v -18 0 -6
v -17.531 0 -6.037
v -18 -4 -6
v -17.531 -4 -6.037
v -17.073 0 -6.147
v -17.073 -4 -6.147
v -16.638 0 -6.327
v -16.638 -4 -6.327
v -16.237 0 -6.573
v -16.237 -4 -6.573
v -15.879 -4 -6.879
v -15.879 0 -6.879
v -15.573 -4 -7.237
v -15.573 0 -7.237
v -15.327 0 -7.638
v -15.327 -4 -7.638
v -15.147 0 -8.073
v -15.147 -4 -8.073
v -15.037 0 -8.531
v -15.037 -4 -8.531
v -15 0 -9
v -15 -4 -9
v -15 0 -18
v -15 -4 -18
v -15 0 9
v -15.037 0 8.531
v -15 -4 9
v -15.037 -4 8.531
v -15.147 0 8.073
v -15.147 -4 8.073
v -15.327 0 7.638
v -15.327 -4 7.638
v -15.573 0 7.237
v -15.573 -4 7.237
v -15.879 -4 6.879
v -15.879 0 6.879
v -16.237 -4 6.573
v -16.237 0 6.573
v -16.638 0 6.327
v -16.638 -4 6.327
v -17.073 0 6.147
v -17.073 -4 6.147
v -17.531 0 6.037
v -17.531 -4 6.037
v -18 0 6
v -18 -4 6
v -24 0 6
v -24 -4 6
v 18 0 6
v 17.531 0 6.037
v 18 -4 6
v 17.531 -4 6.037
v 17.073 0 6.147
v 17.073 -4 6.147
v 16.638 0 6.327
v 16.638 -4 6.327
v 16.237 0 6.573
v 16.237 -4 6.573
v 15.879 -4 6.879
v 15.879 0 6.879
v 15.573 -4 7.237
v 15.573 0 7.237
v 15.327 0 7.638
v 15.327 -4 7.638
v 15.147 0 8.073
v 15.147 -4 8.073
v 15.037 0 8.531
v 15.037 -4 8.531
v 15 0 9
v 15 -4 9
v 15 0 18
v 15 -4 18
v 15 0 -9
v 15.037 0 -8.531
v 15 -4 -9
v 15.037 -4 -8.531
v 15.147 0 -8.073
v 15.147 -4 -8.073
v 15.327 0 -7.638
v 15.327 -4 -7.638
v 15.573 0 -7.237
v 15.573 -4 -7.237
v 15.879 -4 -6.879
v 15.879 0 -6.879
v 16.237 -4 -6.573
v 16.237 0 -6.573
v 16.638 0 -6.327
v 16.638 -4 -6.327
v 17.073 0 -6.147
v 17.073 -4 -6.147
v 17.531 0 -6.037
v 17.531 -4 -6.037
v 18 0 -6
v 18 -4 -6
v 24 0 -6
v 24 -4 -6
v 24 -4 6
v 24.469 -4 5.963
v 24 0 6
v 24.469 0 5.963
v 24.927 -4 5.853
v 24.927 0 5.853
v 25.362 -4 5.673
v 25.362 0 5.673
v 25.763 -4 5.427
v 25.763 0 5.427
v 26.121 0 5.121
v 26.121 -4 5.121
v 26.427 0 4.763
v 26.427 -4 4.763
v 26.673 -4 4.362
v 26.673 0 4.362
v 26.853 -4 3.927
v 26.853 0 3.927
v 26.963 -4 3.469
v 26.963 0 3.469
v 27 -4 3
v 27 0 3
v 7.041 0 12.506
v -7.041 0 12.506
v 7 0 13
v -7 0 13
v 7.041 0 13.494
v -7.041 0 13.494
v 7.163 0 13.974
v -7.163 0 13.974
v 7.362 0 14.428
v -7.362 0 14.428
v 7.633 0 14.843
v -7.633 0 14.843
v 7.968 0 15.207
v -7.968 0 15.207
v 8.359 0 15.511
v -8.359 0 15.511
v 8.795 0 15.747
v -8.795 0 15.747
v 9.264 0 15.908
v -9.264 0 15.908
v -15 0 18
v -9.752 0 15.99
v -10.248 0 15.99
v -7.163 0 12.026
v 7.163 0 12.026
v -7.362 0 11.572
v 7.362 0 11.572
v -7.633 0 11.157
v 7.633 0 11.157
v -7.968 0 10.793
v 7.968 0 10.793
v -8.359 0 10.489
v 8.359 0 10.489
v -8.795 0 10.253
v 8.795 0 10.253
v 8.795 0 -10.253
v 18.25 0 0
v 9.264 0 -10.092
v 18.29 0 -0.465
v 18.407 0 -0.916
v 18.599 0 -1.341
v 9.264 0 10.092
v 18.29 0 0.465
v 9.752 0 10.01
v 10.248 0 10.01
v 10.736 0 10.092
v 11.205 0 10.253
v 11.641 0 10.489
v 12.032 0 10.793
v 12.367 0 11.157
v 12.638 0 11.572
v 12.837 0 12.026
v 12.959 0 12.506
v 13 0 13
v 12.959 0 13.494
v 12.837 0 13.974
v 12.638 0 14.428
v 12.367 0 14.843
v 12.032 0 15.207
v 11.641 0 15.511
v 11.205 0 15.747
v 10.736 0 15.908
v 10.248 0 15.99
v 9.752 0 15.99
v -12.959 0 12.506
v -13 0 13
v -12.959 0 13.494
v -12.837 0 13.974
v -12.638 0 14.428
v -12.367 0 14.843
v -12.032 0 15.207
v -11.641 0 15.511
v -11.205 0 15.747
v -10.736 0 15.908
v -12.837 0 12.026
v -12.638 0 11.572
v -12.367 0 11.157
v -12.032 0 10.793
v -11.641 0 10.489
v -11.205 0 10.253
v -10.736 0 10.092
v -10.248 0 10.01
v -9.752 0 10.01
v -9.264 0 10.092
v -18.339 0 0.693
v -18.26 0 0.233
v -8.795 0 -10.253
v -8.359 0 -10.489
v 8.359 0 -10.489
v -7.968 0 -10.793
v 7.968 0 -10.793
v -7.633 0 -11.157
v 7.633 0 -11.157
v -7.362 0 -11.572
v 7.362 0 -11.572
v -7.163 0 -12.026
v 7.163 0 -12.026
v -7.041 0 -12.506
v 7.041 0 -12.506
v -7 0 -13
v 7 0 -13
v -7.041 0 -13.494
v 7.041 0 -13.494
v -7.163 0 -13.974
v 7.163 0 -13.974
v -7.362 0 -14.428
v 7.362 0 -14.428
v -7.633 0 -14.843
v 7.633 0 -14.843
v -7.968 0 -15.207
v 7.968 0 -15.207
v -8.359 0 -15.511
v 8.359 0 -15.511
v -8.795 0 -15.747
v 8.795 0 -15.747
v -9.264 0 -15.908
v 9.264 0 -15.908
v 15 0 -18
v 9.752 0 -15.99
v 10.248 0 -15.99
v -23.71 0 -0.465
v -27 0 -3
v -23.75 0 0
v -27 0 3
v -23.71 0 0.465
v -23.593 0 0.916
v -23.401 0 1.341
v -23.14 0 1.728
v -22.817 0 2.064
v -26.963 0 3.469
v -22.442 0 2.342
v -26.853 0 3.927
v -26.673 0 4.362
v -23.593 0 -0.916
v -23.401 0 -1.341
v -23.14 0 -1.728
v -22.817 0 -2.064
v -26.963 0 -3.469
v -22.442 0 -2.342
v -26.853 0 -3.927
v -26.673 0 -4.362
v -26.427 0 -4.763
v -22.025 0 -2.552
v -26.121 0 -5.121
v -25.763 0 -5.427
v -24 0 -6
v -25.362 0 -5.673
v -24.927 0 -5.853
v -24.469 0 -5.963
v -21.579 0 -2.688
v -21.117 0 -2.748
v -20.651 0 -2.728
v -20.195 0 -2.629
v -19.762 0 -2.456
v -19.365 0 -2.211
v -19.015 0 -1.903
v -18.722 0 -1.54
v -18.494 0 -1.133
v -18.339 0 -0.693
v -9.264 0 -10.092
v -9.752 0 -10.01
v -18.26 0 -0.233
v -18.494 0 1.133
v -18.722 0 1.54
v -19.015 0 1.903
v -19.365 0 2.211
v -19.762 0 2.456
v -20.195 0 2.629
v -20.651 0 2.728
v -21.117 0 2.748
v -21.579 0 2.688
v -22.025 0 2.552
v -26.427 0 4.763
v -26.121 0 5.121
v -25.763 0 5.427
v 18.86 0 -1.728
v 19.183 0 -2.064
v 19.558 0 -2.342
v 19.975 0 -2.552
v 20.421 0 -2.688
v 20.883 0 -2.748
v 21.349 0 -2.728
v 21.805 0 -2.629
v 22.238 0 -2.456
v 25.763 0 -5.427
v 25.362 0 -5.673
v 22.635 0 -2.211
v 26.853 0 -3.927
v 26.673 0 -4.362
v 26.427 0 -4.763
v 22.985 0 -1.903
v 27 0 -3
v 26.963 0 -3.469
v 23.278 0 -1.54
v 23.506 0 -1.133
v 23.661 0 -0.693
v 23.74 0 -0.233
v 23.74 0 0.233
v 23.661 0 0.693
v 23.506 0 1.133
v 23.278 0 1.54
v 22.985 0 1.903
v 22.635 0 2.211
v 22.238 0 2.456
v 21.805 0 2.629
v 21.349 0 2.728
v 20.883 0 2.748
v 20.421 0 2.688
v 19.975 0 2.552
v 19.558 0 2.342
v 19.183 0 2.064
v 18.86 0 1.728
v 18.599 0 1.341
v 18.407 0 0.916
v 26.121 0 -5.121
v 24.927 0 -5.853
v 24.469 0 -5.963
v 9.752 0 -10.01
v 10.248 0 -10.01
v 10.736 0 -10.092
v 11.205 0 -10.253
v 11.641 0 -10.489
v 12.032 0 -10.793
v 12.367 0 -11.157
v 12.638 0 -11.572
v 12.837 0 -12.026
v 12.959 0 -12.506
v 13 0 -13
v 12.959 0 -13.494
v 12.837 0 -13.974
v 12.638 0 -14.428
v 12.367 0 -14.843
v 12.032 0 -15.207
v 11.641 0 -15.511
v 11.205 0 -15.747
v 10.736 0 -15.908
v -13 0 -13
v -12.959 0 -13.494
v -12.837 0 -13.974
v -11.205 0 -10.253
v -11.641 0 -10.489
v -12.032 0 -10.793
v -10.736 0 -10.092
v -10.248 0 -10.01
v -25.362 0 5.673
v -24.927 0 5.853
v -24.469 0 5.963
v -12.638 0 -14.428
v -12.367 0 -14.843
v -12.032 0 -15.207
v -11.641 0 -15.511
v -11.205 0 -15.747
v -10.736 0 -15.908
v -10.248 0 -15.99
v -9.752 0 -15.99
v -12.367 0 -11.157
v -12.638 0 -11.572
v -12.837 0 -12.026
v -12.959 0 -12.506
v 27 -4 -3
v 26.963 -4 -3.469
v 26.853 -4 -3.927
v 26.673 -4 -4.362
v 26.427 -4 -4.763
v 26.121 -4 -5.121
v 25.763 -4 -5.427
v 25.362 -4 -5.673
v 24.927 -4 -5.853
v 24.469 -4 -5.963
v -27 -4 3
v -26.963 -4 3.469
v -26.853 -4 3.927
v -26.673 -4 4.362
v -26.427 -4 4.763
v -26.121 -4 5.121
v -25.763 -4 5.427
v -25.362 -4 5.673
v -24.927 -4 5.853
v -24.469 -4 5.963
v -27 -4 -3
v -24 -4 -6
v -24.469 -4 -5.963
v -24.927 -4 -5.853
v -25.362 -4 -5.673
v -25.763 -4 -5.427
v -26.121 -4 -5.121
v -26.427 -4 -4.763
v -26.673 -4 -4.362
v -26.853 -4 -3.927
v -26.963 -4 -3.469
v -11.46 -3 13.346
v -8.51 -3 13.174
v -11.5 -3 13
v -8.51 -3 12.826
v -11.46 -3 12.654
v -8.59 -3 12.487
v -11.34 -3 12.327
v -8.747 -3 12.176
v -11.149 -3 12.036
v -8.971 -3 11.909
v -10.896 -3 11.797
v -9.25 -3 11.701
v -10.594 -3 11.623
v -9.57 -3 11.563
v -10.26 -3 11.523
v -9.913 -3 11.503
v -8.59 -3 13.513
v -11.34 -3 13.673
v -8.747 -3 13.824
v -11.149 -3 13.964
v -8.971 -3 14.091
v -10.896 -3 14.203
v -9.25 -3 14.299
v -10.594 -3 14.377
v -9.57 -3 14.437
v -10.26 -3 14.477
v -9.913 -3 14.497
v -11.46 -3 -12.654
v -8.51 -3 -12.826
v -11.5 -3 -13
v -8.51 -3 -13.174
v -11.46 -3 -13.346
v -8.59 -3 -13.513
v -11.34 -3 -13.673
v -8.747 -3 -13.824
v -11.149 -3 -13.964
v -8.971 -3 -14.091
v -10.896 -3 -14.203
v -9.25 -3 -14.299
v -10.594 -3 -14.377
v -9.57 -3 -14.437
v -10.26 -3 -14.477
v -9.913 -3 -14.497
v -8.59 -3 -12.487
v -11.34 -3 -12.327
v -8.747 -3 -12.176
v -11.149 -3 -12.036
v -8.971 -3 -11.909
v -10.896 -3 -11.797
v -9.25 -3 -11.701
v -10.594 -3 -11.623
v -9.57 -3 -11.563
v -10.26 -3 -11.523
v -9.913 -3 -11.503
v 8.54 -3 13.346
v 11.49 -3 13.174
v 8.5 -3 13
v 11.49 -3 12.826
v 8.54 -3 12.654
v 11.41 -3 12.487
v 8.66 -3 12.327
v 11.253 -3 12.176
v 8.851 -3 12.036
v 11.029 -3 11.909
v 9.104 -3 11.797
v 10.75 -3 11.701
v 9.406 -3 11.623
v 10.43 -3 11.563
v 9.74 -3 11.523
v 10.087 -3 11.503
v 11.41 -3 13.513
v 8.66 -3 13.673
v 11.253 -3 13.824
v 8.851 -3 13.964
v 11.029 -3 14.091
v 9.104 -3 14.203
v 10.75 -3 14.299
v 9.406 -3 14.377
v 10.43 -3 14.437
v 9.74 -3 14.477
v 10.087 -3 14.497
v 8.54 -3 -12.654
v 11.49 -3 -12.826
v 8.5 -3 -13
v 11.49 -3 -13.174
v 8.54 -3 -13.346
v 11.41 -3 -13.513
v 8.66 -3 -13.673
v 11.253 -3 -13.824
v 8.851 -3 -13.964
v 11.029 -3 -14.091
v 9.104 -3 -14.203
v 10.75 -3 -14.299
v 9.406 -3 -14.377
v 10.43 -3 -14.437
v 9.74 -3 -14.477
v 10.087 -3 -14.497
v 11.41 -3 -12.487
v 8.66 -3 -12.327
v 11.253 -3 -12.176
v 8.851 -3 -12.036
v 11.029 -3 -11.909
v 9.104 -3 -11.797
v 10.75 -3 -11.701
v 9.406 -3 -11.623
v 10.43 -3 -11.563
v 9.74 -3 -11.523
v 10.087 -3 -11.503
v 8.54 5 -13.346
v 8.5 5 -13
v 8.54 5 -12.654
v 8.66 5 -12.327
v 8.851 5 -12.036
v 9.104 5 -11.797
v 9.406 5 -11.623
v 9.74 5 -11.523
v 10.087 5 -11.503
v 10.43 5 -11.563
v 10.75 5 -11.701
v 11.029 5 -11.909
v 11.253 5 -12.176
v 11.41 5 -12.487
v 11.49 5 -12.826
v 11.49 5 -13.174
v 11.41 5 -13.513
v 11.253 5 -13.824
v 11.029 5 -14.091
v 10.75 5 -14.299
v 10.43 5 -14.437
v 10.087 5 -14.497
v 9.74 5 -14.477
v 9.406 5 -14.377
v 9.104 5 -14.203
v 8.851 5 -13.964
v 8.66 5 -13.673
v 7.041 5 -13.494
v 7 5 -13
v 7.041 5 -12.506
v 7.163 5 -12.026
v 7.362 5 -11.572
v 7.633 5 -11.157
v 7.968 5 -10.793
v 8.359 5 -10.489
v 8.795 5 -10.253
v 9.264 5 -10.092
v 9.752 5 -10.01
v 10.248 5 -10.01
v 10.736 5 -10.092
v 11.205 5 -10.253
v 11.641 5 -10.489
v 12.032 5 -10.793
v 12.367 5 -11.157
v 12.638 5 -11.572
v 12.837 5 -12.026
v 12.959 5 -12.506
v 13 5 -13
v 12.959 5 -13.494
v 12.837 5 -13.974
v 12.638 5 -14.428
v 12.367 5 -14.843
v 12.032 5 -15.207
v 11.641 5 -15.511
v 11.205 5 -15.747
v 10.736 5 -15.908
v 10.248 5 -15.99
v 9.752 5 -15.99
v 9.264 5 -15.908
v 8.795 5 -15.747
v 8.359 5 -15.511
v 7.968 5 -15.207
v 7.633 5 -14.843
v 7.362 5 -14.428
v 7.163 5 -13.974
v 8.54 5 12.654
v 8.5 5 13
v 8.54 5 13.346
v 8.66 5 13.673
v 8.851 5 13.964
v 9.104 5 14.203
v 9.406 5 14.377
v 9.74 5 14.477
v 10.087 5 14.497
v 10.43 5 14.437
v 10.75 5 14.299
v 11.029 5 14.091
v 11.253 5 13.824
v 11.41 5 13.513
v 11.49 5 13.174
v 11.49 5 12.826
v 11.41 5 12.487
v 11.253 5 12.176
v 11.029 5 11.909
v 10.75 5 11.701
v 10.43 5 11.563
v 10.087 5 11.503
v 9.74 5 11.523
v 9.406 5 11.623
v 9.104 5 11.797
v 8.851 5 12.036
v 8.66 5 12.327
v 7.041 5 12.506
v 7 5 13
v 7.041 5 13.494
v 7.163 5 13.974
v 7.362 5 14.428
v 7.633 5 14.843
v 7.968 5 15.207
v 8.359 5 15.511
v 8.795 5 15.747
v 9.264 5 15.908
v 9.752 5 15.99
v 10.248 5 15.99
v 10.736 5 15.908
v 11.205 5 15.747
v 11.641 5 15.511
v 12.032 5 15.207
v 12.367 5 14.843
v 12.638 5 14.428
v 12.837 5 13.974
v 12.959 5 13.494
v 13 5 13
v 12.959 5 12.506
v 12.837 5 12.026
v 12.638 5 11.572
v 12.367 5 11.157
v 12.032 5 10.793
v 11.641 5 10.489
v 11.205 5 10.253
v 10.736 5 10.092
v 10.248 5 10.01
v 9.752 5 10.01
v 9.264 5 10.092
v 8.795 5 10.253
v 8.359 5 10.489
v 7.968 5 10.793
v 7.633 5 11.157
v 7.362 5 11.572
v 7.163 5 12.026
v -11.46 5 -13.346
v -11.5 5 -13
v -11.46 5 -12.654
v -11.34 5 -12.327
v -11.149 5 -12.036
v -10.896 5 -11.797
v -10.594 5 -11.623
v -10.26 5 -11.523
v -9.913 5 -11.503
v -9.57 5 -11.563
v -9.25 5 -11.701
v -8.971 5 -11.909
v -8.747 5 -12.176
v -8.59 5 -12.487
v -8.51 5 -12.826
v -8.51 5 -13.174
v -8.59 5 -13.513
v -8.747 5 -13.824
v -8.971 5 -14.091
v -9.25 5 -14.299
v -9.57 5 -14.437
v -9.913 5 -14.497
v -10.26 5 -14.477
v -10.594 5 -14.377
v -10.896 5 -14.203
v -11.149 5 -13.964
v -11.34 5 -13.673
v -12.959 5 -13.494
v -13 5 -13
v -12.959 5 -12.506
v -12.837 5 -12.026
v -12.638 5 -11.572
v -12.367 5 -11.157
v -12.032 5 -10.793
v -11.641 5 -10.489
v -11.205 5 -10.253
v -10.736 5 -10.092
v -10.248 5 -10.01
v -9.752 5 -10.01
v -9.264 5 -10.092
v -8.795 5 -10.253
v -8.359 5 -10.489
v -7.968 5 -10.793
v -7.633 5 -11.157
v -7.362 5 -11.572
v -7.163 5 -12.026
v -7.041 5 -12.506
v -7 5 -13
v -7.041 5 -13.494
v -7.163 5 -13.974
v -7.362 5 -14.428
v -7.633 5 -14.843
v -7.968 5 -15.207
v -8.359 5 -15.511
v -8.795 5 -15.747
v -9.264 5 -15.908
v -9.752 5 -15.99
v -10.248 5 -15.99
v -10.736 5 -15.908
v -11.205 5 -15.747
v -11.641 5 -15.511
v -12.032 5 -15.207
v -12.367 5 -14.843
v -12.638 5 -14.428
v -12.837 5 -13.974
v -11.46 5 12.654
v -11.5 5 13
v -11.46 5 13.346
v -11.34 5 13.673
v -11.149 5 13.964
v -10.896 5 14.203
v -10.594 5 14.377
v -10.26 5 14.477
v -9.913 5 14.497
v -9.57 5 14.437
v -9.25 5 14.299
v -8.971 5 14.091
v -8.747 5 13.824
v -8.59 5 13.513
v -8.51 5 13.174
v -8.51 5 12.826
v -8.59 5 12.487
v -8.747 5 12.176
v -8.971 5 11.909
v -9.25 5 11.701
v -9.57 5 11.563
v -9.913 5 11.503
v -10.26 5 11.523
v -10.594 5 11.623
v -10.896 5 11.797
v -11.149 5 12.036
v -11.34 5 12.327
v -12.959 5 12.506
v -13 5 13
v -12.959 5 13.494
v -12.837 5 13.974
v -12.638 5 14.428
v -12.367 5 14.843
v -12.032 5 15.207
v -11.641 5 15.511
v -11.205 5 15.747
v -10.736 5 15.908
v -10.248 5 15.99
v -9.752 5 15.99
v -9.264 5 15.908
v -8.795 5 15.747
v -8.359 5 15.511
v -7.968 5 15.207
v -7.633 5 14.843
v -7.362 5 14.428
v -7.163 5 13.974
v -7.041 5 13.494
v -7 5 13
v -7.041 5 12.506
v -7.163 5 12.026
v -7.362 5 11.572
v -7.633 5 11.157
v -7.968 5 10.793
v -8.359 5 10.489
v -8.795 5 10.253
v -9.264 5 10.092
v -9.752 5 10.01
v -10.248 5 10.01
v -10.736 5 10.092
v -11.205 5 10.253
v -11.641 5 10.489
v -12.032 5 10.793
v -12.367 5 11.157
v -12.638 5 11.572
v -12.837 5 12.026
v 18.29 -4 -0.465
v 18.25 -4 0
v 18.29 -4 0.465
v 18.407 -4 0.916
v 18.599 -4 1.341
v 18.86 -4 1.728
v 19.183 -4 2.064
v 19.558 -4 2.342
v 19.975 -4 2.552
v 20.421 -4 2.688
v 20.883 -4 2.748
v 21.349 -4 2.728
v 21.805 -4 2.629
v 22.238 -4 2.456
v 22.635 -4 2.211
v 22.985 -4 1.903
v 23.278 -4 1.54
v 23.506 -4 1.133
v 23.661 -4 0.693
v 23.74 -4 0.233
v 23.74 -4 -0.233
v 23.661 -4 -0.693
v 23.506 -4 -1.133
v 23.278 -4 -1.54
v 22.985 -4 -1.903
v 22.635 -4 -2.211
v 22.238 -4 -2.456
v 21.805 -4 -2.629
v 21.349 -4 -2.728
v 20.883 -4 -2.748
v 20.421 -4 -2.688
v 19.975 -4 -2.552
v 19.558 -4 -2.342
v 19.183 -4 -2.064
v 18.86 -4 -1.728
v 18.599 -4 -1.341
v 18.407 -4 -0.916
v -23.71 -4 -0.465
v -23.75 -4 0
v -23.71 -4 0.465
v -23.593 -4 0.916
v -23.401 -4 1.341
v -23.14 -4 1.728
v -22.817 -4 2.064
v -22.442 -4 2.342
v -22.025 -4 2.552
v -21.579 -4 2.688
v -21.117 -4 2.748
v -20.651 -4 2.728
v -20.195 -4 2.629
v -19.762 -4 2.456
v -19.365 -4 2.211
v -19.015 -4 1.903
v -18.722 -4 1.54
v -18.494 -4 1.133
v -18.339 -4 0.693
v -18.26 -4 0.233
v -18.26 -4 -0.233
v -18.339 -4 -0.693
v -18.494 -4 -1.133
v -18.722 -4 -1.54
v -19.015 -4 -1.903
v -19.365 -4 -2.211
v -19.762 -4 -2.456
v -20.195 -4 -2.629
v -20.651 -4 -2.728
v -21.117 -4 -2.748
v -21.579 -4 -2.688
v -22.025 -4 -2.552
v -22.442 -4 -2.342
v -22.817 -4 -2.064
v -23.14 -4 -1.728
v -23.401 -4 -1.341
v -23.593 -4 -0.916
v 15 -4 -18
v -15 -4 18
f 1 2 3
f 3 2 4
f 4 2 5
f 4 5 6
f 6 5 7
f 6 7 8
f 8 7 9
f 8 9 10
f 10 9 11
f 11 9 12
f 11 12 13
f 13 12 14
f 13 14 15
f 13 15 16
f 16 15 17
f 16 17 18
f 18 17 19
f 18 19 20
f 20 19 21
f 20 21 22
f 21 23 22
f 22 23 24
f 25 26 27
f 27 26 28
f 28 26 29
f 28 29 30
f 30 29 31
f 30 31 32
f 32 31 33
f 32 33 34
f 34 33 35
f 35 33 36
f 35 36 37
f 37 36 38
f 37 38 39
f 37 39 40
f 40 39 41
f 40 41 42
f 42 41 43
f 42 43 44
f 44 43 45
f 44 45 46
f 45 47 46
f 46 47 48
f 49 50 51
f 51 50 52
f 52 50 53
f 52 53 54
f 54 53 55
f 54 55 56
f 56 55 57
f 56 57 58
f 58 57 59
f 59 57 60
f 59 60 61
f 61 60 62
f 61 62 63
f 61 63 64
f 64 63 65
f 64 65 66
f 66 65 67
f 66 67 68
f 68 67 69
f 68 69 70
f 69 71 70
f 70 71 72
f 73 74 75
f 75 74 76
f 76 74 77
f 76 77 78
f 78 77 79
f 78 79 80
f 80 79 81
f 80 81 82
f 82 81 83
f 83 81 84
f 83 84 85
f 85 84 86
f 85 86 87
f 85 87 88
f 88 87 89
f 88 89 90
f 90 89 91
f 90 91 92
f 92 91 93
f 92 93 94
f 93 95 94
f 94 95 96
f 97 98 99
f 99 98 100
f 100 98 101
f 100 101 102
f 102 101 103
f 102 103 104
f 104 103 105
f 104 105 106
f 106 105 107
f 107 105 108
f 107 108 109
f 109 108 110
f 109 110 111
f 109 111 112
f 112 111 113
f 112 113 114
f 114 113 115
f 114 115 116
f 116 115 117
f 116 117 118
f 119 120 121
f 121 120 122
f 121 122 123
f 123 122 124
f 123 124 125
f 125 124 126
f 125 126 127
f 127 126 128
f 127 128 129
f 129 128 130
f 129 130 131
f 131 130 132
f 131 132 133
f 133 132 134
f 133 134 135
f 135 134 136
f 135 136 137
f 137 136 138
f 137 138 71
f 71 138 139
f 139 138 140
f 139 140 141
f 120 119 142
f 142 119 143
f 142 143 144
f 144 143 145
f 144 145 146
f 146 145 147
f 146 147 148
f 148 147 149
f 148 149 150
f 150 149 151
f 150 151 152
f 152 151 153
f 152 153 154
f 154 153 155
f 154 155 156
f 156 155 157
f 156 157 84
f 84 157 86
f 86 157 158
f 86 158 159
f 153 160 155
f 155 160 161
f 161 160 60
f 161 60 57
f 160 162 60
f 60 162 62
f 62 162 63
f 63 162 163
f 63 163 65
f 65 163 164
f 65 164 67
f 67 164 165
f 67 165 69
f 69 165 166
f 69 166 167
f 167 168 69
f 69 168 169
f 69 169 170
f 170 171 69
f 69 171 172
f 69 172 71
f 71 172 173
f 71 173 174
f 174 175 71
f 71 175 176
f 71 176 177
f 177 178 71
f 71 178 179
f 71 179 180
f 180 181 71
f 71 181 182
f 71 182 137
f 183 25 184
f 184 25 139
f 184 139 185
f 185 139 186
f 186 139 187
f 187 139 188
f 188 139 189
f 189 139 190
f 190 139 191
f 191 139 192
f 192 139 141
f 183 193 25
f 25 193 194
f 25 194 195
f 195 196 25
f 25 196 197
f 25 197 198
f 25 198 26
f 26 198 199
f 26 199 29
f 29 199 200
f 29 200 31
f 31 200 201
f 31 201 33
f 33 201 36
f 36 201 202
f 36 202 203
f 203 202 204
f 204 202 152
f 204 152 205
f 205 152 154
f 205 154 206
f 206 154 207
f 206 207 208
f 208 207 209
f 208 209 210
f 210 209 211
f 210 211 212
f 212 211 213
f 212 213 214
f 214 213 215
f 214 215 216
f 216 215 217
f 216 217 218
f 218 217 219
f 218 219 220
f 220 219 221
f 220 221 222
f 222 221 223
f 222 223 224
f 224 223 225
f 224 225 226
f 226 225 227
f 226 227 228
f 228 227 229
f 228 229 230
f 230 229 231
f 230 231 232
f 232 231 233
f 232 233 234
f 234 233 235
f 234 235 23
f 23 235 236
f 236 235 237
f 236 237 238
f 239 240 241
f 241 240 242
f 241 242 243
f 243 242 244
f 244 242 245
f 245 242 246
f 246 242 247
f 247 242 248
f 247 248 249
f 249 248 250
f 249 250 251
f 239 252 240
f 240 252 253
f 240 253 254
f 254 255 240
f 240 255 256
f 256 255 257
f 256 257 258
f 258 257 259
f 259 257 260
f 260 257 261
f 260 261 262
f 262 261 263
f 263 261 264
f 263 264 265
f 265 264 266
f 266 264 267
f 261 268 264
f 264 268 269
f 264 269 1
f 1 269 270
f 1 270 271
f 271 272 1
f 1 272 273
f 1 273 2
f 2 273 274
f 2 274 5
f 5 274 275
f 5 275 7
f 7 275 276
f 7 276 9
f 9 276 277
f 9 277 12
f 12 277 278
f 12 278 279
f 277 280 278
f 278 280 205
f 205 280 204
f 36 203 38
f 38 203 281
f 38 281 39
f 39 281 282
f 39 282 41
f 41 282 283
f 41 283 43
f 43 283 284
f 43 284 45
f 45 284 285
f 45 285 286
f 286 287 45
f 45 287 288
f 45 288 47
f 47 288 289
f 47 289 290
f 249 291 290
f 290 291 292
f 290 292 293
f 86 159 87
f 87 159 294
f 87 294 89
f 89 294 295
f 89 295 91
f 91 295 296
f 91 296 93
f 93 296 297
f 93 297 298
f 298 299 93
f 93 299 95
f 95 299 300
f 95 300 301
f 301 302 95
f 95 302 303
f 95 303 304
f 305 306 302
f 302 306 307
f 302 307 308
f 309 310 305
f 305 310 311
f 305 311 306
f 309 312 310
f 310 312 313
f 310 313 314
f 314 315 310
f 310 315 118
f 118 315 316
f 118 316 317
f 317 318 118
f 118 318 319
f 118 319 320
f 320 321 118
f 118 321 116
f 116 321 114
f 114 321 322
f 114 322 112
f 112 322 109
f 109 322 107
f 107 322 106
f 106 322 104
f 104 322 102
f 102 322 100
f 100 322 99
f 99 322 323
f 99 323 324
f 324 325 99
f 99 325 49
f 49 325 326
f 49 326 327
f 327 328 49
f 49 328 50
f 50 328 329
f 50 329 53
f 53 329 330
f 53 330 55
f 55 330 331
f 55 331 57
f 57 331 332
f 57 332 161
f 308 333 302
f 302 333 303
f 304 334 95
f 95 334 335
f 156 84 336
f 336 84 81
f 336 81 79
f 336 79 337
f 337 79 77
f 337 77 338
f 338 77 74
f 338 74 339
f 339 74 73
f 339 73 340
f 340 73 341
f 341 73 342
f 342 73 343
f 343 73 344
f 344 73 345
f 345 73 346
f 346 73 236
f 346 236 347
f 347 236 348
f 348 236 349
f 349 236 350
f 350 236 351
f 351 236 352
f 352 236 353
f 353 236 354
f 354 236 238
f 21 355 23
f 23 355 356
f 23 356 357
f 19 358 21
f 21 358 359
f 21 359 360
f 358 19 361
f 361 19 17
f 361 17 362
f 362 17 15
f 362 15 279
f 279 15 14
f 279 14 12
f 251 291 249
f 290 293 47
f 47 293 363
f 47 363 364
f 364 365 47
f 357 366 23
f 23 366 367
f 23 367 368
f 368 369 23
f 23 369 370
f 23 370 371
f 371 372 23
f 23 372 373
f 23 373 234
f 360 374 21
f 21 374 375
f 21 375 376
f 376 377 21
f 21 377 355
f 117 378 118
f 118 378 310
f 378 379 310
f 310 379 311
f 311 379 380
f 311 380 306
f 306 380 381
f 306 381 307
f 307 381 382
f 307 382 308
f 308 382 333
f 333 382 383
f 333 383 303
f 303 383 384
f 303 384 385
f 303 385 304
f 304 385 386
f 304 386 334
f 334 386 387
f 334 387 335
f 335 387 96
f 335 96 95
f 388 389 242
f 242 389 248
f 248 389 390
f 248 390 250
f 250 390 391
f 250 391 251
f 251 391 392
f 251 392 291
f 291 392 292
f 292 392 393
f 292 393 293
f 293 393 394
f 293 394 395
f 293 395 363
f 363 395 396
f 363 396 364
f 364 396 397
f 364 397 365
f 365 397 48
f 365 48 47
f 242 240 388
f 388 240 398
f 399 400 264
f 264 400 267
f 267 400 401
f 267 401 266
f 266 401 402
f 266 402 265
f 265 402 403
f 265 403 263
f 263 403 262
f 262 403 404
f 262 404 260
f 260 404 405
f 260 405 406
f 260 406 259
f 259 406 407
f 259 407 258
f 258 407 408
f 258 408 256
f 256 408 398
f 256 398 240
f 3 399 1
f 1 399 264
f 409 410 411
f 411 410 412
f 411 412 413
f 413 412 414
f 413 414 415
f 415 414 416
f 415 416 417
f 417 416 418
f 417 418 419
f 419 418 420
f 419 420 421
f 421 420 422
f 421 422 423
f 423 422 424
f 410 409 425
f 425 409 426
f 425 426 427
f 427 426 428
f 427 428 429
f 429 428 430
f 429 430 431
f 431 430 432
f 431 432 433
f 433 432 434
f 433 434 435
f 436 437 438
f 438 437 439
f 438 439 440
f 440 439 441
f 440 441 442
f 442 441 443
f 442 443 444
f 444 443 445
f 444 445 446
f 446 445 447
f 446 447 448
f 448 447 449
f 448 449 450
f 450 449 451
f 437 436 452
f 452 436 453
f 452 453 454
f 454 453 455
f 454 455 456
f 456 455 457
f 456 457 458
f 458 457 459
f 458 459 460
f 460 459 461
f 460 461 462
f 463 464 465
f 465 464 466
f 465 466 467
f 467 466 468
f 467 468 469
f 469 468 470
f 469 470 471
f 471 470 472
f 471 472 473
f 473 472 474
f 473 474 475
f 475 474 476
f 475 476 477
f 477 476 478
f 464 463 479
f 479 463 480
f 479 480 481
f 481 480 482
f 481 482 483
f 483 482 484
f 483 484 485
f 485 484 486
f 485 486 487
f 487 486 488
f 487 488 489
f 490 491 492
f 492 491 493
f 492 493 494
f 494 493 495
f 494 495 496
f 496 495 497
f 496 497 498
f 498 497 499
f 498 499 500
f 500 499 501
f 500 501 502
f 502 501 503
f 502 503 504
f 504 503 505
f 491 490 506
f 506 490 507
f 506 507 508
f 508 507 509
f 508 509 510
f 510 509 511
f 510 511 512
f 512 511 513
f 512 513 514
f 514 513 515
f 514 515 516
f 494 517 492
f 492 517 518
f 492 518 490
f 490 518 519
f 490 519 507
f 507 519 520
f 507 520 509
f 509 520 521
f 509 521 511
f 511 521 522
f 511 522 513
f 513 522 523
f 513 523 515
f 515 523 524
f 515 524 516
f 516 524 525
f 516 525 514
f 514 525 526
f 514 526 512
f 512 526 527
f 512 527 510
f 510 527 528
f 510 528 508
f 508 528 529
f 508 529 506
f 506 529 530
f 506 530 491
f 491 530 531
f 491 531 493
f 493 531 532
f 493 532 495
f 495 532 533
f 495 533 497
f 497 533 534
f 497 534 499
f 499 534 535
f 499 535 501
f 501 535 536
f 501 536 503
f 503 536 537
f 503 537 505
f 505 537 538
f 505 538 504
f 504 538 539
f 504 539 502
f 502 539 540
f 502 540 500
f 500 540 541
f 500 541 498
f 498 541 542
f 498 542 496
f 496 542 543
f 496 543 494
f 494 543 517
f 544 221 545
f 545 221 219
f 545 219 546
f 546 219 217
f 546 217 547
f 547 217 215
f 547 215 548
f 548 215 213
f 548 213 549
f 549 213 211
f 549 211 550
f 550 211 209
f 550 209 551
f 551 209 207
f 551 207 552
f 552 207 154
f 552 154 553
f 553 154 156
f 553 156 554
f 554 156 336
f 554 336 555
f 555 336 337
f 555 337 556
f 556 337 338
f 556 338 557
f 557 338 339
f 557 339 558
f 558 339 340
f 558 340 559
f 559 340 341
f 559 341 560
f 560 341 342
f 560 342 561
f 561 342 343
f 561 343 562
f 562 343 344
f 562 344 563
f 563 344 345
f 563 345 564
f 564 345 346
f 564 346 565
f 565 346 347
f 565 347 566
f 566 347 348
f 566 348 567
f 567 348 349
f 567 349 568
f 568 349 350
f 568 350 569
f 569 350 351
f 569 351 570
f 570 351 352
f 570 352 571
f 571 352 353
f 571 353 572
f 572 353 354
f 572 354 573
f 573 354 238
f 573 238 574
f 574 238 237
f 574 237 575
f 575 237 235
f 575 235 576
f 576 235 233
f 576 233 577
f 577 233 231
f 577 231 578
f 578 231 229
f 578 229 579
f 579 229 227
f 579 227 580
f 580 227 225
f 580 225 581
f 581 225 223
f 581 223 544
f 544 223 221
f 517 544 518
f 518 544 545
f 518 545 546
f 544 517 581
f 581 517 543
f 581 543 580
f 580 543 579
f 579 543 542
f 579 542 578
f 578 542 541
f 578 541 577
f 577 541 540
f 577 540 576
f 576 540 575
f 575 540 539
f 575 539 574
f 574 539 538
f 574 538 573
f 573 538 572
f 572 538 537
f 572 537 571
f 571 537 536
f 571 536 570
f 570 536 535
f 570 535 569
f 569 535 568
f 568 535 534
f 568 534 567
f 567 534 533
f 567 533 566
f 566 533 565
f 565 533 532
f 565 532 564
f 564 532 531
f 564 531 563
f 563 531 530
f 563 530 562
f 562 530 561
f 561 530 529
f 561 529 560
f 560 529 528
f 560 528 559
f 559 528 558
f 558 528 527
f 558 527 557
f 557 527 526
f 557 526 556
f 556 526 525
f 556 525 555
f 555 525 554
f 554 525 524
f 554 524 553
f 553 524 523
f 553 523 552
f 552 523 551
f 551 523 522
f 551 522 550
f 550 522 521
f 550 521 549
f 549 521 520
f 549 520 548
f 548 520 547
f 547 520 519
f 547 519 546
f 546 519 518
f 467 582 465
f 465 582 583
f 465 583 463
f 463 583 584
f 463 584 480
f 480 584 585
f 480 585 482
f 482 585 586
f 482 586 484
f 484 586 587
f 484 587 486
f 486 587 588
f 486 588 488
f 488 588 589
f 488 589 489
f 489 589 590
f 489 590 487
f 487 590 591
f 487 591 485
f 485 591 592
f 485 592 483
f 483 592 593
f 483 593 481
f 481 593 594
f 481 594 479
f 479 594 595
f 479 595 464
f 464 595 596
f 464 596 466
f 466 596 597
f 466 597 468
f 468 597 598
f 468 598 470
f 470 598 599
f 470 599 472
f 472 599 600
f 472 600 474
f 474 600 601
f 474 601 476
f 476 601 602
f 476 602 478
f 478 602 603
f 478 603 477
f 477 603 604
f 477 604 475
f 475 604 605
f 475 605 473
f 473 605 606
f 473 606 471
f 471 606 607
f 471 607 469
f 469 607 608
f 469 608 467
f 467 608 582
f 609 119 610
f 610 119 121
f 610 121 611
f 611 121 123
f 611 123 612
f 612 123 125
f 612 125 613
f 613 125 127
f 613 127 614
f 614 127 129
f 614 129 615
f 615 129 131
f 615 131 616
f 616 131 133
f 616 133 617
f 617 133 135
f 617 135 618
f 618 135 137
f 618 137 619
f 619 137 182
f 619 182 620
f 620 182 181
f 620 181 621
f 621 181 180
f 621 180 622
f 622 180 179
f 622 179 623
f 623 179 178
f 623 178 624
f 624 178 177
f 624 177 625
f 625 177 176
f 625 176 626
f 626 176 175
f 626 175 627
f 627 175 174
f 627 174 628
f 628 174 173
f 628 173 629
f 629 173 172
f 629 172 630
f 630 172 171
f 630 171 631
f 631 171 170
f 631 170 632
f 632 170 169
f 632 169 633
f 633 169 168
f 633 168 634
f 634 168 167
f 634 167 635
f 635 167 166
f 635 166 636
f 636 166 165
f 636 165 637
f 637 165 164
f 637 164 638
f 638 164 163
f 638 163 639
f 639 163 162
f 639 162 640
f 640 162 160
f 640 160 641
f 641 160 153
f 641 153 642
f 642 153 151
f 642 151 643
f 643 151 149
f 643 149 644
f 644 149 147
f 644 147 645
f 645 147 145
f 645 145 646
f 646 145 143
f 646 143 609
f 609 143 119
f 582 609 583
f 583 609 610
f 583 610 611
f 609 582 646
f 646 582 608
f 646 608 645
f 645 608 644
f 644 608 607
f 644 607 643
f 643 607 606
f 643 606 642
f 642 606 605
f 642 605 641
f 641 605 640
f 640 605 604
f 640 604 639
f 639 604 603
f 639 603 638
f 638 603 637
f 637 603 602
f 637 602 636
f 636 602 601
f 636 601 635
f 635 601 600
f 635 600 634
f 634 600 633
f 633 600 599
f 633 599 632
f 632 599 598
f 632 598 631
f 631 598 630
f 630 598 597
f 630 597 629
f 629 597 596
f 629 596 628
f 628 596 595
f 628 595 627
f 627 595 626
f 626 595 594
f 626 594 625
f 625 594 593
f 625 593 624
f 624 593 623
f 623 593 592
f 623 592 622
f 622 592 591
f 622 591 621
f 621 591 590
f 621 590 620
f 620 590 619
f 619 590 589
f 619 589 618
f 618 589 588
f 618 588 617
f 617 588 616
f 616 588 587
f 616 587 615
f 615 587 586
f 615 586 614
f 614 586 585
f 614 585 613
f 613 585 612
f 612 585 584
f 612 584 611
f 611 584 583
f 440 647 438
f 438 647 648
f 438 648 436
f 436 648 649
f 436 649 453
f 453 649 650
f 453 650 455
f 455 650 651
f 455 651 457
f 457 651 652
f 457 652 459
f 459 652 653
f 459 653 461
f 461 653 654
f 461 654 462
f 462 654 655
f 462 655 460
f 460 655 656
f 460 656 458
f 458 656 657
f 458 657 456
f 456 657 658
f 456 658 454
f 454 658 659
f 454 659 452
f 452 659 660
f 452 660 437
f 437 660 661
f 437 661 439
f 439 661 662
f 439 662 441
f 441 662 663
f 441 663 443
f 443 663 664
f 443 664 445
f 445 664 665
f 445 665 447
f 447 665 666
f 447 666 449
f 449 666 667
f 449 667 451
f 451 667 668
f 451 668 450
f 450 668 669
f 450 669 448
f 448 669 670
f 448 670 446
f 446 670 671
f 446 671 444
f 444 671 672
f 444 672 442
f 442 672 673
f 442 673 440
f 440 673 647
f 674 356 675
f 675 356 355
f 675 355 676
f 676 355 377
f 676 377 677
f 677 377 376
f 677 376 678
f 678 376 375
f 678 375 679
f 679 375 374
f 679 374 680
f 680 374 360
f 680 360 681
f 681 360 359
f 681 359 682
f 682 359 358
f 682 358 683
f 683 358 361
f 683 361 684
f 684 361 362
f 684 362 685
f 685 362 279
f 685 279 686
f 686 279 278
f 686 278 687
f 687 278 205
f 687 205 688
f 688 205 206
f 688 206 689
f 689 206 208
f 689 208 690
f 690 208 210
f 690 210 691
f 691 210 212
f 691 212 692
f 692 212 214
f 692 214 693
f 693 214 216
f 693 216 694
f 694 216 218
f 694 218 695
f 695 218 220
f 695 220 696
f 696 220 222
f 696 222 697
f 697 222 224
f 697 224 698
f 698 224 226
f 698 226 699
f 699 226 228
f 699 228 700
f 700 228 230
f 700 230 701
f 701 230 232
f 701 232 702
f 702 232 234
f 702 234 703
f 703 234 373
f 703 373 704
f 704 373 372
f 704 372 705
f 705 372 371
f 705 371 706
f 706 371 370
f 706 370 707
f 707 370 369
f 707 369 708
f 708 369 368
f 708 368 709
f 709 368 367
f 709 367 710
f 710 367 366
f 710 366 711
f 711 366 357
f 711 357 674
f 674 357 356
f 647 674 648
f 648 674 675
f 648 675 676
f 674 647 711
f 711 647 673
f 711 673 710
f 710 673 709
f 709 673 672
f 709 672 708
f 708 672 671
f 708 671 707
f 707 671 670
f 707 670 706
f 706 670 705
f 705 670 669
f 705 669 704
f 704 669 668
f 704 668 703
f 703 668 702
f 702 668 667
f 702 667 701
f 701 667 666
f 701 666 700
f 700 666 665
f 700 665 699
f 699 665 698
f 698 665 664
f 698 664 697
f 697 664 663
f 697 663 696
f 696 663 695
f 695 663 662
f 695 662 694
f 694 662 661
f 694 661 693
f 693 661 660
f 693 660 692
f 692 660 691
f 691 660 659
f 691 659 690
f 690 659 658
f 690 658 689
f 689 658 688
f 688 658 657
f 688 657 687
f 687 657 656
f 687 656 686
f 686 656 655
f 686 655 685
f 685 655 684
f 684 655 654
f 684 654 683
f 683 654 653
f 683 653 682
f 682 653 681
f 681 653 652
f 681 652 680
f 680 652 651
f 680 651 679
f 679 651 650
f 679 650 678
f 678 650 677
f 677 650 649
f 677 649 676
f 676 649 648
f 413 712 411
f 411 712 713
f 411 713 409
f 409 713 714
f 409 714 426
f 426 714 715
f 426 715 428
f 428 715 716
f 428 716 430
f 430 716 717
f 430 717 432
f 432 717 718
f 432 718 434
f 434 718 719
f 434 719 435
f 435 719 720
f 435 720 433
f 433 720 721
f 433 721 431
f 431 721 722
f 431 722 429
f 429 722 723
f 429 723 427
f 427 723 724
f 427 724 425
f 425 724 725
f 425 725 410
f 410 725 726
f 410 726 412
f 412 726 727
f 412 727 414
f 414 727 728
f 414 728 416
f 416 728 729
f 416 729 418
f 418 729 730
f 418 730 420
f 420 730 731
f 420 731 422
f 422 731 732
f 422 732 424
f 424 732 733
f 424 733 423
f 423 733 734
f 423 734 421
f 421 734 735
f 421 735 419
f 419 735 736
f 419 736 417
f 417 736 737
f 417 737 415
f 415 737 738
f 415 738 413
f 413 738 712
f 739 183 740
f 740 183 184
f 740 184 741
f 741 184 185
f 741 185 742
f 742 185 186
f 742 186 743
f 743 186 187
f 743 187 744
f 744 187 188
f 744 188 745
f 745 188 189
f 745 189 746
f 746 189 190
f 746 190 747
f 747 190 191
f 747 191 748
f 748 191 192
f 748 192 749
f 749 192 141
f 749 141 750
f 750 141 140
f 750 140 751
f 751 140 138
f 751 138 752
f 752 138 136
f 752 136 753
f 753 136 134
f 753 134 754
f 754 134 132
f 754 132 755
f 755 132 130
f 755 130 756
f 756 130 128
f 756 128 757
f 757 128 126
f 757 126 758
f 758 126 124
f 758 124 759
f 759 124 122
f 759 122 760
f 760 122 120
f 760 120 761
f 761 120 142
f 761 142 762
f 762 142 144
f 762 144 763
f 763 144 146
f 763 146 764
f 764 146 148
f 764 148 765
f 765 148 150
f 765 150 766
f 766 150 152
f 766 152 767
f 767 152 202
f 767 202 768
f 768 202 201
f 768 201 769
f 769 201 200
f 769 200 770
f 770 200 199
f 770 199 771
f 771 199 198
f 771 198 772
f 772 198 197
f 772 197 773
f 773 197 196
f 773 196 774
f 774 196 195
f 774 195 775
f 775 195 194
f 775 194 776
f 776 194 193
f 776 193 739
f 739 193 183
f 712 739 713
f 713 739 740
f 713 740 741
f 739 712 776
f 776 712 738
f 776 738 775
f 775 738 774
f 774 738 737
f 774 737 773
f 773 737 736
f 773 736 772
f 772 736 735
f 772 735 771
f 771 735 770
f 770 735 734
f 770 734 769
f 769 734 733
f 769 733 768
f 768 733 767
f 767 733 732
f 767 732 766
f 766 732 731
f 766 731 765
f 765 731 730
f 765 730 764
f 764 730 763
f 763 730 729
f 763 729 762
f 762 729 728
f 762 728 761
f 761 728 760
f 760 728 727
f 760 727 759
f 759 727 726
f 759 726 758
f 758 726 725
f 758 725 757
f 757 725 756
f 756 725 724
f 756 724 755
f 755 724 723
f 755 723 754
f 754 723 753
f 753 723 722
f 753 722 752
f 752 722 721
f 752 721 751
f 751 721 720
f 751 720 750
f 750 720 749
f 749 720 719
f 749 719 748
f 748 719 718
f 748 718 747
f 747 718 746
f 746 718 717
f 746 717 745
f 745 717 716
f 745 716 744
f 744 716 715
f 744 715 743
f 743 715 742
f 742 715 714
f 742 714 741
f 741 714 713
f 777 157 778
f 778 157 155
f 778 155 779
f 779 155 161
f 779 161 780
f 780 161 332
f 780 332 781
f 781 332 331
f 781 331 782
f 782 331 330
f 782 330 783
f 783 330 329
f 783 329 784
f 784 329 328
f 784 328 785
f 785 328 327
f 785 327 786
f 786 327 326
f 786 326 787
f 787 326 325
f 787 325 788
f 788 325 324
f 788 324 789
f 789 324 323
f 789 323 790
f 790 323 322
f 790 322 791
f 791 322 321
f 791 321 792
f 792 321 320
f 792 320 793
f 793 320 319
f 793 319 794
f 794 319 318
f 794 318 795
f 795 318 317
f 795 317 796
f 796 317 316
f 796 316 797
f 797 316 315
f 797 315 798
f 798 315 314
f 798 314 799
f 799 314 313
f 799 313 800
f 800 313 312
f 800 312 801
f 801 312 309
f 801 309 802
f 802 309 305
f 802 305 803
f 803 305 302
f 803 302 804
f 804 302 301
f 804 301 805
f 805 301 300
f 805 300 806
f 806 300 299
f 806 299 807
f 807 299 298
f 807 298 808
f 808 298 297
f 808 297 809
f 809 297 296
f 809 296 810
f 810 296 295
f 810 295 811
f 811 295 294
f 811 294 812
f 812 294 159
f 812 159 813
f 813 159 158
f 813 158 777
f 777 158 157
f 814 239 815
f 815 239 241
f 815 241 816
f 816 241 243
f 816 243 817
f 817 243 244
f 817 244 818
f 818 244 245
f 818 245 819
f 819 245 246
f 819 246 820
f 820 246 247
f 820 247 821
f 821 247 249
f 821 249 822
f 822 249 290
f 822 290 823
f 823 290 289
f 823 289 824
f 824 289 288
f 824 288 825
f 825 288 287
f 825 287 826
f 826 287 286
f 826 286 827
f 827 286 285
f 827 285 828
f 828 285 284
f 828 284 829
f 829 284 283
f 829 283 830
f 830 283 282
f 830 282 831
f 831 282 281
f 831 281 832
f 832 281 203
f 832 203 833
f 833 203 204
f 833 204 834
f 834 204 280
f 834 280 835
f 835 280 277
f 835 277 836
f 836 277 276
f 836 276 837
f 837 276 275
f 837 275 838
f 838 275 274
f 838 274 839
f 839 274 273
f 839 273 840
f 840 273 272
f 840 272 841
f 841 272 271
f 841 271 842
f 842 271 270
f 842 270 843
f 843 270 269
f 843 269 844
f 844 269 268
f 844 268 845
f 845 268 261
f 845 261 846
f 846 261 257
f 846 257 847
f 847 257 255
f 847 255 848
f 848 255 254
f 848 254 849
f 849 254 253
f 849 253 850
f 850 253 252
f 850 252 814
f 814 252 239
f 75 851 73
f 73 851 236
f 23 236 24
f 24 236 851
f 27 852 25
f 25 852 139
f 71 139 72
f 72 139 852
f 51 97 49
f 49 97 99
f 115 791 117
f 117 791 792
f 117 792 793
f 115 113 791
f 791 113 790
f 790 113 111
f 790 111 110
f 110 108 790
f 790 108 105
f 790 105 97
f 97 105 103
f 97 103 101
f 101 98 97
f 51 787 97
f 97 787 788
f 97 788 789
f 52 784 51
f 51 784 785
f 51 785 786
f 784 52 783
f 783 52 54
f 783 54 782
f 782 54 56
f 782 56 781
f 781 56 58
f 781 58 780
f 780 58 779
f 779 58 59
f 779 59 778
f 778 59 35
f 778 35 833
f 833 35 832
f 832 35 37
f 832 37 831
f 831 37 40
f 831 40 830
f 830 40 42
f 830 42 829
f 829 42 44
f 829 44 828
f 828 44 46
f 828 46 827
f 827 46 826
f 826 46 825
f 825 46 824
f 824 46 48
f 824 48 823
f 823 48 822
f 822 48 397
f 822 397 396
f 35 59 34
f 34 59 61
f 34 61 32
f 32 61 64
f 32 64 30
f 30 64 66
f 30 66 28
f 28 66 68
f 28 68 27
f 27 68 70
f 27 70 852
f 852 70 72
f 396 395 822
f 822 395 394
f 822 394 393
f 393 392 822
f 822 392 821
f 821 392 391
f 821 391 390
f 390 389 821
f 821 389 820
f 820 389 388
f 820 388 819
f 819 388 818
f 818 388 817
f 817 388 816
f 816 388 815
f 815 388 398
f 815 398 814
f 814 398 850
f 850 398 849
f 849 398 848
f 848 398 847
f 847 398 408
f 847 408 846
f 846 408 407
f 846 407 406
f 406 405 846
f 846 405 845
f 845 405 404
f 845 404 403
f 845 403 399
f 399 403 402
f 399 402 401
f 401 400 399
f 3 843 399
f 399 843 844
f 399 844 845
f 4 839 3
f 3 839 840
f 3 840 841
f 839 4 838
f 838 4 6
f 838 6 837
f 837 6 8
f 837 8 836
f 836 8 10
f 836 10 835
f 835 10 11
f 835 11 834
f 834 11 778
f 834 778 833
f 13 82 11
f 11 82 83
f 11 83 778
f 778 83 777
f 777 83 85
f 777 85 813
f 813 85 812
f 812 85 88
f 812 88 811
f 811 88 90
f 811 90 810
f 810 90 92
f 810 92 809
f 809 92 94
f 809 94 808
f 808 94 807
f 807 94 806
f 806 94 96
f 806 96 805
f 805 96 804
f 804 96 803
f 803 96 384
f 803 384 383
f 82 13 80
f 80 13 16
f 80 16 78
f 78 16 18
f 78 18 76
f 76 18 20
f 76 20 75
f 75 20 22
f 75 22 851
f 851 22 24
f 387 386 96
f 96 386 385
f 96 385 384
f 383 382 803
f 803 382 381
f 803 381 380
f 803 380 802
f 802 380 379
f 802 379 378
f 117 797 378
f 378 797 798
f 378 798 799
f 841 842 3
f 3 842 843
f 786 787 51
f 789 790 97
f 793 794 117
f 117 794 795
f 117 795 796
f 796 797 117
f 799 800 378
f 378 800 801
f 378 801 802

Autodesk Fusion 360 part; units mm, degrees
sketch "Sketch1" plane through (0, 0, 0) normal (0, 1, 0) x (1, 0, 0)
  line L0 (10, 13) -> (-10, 13) construction
  line L1 (-10, 13) -> (-10, -13) construction
  line L2 (-10, -13) -> (10, -13) construction
  line L3 (10, -13) -> (10, 13) construction
  line L4 (10, 13) -> (-10, -13) construction
  line L5 (-10, 13) -> (10, -13) construction
  circle A0 centre (10, 13) radius 1.5
  line L6 (0, 0) -> (0, 6) construction
  line L7 (0, 0) -> (-6, 0) construction
  line L8 (2.5, 0) -> (20, 0)
  circle A1 centre (10, -13) radius 1.5
  line L9 (0, -20) -> (0, -2.5)
  circle A2 centre (-10, 13) radius 1.5
  circle A3 centre (-10, -13) radius 1.5
  circle A4 centre (-10, -13) radius 3
  circle A5 centre (-10, 13) radius 3
  circle A6 centre (10, -13) radius 3
  circle A7 centre (10, 13) radius 3
  line L10 (15, -18) -> (-15, -18)
  line L11 (-15, -18) -> (-15, 18)
  line L12 (-15, 18) -> (15, 18)
  line L13 (15, 18) -> (15, -18)
  line L14 (15, -18) -> (-15, 18) construction
  line L15 (-15, -18) -> (15, 18) construction
  line L16 (15, -6) -> (27, -6)
  line L17 (27, -6) -> (27, 6)
  line L18 (27, 6) -> (15, 6)
  line L19 (15, 6) -> (15, -6)
  line L20 (15, -6) -> (27, 6) construction
  line L21 (27, -6) -> (15, 6) construction
  circle A8 centre (21, 0) radius 2.75
  circle A9 centre (-21, 0) radius 2.75
  line L22 (-15, -6) -> (-27, -6)
  line L23 (-27, -6) -> (-27, 6)
  line L24 (-27, 6) -> (-15, 6)
  point P0 (21, 0)
  dimension "d1" = 3
  dimension "d2" = 1.5
  dimension "d3" = 26
  dimension "d4" = 20
  dimension "d5" = 5
  dimension "d6" = 5
  dimension "d7" = 12
  dimension "d8" = 12
  dimension "d9" = 5.5
extrude "Extrude1" add sketch "Sketch1" against normal blind 4 contours A0 | L10 L11 L12 L13 L19 | L13 L16 L17 L18 L19 | L11 L22 L23 L24 | A1 | A2 | A3 | A4 | A5 | A6 | A7
extrude "Extrude2" add sketch "Sketch1" along normal blind 5 contours A4 | A5 | A6 | A7
extrude "Extrude3" cut sketch "Sketch1" against normal blind 3 contours A0 | A1 | A2 | A3
fillet "Fillet1" radius 3 8 edges at (-27, -2, -6) (-27, -2, 6) (27, -2, -6) (27, -2, 6) (15, -2, -6) (15, -2, 6) (-15, -2, 6) (-15, -2, -6)
